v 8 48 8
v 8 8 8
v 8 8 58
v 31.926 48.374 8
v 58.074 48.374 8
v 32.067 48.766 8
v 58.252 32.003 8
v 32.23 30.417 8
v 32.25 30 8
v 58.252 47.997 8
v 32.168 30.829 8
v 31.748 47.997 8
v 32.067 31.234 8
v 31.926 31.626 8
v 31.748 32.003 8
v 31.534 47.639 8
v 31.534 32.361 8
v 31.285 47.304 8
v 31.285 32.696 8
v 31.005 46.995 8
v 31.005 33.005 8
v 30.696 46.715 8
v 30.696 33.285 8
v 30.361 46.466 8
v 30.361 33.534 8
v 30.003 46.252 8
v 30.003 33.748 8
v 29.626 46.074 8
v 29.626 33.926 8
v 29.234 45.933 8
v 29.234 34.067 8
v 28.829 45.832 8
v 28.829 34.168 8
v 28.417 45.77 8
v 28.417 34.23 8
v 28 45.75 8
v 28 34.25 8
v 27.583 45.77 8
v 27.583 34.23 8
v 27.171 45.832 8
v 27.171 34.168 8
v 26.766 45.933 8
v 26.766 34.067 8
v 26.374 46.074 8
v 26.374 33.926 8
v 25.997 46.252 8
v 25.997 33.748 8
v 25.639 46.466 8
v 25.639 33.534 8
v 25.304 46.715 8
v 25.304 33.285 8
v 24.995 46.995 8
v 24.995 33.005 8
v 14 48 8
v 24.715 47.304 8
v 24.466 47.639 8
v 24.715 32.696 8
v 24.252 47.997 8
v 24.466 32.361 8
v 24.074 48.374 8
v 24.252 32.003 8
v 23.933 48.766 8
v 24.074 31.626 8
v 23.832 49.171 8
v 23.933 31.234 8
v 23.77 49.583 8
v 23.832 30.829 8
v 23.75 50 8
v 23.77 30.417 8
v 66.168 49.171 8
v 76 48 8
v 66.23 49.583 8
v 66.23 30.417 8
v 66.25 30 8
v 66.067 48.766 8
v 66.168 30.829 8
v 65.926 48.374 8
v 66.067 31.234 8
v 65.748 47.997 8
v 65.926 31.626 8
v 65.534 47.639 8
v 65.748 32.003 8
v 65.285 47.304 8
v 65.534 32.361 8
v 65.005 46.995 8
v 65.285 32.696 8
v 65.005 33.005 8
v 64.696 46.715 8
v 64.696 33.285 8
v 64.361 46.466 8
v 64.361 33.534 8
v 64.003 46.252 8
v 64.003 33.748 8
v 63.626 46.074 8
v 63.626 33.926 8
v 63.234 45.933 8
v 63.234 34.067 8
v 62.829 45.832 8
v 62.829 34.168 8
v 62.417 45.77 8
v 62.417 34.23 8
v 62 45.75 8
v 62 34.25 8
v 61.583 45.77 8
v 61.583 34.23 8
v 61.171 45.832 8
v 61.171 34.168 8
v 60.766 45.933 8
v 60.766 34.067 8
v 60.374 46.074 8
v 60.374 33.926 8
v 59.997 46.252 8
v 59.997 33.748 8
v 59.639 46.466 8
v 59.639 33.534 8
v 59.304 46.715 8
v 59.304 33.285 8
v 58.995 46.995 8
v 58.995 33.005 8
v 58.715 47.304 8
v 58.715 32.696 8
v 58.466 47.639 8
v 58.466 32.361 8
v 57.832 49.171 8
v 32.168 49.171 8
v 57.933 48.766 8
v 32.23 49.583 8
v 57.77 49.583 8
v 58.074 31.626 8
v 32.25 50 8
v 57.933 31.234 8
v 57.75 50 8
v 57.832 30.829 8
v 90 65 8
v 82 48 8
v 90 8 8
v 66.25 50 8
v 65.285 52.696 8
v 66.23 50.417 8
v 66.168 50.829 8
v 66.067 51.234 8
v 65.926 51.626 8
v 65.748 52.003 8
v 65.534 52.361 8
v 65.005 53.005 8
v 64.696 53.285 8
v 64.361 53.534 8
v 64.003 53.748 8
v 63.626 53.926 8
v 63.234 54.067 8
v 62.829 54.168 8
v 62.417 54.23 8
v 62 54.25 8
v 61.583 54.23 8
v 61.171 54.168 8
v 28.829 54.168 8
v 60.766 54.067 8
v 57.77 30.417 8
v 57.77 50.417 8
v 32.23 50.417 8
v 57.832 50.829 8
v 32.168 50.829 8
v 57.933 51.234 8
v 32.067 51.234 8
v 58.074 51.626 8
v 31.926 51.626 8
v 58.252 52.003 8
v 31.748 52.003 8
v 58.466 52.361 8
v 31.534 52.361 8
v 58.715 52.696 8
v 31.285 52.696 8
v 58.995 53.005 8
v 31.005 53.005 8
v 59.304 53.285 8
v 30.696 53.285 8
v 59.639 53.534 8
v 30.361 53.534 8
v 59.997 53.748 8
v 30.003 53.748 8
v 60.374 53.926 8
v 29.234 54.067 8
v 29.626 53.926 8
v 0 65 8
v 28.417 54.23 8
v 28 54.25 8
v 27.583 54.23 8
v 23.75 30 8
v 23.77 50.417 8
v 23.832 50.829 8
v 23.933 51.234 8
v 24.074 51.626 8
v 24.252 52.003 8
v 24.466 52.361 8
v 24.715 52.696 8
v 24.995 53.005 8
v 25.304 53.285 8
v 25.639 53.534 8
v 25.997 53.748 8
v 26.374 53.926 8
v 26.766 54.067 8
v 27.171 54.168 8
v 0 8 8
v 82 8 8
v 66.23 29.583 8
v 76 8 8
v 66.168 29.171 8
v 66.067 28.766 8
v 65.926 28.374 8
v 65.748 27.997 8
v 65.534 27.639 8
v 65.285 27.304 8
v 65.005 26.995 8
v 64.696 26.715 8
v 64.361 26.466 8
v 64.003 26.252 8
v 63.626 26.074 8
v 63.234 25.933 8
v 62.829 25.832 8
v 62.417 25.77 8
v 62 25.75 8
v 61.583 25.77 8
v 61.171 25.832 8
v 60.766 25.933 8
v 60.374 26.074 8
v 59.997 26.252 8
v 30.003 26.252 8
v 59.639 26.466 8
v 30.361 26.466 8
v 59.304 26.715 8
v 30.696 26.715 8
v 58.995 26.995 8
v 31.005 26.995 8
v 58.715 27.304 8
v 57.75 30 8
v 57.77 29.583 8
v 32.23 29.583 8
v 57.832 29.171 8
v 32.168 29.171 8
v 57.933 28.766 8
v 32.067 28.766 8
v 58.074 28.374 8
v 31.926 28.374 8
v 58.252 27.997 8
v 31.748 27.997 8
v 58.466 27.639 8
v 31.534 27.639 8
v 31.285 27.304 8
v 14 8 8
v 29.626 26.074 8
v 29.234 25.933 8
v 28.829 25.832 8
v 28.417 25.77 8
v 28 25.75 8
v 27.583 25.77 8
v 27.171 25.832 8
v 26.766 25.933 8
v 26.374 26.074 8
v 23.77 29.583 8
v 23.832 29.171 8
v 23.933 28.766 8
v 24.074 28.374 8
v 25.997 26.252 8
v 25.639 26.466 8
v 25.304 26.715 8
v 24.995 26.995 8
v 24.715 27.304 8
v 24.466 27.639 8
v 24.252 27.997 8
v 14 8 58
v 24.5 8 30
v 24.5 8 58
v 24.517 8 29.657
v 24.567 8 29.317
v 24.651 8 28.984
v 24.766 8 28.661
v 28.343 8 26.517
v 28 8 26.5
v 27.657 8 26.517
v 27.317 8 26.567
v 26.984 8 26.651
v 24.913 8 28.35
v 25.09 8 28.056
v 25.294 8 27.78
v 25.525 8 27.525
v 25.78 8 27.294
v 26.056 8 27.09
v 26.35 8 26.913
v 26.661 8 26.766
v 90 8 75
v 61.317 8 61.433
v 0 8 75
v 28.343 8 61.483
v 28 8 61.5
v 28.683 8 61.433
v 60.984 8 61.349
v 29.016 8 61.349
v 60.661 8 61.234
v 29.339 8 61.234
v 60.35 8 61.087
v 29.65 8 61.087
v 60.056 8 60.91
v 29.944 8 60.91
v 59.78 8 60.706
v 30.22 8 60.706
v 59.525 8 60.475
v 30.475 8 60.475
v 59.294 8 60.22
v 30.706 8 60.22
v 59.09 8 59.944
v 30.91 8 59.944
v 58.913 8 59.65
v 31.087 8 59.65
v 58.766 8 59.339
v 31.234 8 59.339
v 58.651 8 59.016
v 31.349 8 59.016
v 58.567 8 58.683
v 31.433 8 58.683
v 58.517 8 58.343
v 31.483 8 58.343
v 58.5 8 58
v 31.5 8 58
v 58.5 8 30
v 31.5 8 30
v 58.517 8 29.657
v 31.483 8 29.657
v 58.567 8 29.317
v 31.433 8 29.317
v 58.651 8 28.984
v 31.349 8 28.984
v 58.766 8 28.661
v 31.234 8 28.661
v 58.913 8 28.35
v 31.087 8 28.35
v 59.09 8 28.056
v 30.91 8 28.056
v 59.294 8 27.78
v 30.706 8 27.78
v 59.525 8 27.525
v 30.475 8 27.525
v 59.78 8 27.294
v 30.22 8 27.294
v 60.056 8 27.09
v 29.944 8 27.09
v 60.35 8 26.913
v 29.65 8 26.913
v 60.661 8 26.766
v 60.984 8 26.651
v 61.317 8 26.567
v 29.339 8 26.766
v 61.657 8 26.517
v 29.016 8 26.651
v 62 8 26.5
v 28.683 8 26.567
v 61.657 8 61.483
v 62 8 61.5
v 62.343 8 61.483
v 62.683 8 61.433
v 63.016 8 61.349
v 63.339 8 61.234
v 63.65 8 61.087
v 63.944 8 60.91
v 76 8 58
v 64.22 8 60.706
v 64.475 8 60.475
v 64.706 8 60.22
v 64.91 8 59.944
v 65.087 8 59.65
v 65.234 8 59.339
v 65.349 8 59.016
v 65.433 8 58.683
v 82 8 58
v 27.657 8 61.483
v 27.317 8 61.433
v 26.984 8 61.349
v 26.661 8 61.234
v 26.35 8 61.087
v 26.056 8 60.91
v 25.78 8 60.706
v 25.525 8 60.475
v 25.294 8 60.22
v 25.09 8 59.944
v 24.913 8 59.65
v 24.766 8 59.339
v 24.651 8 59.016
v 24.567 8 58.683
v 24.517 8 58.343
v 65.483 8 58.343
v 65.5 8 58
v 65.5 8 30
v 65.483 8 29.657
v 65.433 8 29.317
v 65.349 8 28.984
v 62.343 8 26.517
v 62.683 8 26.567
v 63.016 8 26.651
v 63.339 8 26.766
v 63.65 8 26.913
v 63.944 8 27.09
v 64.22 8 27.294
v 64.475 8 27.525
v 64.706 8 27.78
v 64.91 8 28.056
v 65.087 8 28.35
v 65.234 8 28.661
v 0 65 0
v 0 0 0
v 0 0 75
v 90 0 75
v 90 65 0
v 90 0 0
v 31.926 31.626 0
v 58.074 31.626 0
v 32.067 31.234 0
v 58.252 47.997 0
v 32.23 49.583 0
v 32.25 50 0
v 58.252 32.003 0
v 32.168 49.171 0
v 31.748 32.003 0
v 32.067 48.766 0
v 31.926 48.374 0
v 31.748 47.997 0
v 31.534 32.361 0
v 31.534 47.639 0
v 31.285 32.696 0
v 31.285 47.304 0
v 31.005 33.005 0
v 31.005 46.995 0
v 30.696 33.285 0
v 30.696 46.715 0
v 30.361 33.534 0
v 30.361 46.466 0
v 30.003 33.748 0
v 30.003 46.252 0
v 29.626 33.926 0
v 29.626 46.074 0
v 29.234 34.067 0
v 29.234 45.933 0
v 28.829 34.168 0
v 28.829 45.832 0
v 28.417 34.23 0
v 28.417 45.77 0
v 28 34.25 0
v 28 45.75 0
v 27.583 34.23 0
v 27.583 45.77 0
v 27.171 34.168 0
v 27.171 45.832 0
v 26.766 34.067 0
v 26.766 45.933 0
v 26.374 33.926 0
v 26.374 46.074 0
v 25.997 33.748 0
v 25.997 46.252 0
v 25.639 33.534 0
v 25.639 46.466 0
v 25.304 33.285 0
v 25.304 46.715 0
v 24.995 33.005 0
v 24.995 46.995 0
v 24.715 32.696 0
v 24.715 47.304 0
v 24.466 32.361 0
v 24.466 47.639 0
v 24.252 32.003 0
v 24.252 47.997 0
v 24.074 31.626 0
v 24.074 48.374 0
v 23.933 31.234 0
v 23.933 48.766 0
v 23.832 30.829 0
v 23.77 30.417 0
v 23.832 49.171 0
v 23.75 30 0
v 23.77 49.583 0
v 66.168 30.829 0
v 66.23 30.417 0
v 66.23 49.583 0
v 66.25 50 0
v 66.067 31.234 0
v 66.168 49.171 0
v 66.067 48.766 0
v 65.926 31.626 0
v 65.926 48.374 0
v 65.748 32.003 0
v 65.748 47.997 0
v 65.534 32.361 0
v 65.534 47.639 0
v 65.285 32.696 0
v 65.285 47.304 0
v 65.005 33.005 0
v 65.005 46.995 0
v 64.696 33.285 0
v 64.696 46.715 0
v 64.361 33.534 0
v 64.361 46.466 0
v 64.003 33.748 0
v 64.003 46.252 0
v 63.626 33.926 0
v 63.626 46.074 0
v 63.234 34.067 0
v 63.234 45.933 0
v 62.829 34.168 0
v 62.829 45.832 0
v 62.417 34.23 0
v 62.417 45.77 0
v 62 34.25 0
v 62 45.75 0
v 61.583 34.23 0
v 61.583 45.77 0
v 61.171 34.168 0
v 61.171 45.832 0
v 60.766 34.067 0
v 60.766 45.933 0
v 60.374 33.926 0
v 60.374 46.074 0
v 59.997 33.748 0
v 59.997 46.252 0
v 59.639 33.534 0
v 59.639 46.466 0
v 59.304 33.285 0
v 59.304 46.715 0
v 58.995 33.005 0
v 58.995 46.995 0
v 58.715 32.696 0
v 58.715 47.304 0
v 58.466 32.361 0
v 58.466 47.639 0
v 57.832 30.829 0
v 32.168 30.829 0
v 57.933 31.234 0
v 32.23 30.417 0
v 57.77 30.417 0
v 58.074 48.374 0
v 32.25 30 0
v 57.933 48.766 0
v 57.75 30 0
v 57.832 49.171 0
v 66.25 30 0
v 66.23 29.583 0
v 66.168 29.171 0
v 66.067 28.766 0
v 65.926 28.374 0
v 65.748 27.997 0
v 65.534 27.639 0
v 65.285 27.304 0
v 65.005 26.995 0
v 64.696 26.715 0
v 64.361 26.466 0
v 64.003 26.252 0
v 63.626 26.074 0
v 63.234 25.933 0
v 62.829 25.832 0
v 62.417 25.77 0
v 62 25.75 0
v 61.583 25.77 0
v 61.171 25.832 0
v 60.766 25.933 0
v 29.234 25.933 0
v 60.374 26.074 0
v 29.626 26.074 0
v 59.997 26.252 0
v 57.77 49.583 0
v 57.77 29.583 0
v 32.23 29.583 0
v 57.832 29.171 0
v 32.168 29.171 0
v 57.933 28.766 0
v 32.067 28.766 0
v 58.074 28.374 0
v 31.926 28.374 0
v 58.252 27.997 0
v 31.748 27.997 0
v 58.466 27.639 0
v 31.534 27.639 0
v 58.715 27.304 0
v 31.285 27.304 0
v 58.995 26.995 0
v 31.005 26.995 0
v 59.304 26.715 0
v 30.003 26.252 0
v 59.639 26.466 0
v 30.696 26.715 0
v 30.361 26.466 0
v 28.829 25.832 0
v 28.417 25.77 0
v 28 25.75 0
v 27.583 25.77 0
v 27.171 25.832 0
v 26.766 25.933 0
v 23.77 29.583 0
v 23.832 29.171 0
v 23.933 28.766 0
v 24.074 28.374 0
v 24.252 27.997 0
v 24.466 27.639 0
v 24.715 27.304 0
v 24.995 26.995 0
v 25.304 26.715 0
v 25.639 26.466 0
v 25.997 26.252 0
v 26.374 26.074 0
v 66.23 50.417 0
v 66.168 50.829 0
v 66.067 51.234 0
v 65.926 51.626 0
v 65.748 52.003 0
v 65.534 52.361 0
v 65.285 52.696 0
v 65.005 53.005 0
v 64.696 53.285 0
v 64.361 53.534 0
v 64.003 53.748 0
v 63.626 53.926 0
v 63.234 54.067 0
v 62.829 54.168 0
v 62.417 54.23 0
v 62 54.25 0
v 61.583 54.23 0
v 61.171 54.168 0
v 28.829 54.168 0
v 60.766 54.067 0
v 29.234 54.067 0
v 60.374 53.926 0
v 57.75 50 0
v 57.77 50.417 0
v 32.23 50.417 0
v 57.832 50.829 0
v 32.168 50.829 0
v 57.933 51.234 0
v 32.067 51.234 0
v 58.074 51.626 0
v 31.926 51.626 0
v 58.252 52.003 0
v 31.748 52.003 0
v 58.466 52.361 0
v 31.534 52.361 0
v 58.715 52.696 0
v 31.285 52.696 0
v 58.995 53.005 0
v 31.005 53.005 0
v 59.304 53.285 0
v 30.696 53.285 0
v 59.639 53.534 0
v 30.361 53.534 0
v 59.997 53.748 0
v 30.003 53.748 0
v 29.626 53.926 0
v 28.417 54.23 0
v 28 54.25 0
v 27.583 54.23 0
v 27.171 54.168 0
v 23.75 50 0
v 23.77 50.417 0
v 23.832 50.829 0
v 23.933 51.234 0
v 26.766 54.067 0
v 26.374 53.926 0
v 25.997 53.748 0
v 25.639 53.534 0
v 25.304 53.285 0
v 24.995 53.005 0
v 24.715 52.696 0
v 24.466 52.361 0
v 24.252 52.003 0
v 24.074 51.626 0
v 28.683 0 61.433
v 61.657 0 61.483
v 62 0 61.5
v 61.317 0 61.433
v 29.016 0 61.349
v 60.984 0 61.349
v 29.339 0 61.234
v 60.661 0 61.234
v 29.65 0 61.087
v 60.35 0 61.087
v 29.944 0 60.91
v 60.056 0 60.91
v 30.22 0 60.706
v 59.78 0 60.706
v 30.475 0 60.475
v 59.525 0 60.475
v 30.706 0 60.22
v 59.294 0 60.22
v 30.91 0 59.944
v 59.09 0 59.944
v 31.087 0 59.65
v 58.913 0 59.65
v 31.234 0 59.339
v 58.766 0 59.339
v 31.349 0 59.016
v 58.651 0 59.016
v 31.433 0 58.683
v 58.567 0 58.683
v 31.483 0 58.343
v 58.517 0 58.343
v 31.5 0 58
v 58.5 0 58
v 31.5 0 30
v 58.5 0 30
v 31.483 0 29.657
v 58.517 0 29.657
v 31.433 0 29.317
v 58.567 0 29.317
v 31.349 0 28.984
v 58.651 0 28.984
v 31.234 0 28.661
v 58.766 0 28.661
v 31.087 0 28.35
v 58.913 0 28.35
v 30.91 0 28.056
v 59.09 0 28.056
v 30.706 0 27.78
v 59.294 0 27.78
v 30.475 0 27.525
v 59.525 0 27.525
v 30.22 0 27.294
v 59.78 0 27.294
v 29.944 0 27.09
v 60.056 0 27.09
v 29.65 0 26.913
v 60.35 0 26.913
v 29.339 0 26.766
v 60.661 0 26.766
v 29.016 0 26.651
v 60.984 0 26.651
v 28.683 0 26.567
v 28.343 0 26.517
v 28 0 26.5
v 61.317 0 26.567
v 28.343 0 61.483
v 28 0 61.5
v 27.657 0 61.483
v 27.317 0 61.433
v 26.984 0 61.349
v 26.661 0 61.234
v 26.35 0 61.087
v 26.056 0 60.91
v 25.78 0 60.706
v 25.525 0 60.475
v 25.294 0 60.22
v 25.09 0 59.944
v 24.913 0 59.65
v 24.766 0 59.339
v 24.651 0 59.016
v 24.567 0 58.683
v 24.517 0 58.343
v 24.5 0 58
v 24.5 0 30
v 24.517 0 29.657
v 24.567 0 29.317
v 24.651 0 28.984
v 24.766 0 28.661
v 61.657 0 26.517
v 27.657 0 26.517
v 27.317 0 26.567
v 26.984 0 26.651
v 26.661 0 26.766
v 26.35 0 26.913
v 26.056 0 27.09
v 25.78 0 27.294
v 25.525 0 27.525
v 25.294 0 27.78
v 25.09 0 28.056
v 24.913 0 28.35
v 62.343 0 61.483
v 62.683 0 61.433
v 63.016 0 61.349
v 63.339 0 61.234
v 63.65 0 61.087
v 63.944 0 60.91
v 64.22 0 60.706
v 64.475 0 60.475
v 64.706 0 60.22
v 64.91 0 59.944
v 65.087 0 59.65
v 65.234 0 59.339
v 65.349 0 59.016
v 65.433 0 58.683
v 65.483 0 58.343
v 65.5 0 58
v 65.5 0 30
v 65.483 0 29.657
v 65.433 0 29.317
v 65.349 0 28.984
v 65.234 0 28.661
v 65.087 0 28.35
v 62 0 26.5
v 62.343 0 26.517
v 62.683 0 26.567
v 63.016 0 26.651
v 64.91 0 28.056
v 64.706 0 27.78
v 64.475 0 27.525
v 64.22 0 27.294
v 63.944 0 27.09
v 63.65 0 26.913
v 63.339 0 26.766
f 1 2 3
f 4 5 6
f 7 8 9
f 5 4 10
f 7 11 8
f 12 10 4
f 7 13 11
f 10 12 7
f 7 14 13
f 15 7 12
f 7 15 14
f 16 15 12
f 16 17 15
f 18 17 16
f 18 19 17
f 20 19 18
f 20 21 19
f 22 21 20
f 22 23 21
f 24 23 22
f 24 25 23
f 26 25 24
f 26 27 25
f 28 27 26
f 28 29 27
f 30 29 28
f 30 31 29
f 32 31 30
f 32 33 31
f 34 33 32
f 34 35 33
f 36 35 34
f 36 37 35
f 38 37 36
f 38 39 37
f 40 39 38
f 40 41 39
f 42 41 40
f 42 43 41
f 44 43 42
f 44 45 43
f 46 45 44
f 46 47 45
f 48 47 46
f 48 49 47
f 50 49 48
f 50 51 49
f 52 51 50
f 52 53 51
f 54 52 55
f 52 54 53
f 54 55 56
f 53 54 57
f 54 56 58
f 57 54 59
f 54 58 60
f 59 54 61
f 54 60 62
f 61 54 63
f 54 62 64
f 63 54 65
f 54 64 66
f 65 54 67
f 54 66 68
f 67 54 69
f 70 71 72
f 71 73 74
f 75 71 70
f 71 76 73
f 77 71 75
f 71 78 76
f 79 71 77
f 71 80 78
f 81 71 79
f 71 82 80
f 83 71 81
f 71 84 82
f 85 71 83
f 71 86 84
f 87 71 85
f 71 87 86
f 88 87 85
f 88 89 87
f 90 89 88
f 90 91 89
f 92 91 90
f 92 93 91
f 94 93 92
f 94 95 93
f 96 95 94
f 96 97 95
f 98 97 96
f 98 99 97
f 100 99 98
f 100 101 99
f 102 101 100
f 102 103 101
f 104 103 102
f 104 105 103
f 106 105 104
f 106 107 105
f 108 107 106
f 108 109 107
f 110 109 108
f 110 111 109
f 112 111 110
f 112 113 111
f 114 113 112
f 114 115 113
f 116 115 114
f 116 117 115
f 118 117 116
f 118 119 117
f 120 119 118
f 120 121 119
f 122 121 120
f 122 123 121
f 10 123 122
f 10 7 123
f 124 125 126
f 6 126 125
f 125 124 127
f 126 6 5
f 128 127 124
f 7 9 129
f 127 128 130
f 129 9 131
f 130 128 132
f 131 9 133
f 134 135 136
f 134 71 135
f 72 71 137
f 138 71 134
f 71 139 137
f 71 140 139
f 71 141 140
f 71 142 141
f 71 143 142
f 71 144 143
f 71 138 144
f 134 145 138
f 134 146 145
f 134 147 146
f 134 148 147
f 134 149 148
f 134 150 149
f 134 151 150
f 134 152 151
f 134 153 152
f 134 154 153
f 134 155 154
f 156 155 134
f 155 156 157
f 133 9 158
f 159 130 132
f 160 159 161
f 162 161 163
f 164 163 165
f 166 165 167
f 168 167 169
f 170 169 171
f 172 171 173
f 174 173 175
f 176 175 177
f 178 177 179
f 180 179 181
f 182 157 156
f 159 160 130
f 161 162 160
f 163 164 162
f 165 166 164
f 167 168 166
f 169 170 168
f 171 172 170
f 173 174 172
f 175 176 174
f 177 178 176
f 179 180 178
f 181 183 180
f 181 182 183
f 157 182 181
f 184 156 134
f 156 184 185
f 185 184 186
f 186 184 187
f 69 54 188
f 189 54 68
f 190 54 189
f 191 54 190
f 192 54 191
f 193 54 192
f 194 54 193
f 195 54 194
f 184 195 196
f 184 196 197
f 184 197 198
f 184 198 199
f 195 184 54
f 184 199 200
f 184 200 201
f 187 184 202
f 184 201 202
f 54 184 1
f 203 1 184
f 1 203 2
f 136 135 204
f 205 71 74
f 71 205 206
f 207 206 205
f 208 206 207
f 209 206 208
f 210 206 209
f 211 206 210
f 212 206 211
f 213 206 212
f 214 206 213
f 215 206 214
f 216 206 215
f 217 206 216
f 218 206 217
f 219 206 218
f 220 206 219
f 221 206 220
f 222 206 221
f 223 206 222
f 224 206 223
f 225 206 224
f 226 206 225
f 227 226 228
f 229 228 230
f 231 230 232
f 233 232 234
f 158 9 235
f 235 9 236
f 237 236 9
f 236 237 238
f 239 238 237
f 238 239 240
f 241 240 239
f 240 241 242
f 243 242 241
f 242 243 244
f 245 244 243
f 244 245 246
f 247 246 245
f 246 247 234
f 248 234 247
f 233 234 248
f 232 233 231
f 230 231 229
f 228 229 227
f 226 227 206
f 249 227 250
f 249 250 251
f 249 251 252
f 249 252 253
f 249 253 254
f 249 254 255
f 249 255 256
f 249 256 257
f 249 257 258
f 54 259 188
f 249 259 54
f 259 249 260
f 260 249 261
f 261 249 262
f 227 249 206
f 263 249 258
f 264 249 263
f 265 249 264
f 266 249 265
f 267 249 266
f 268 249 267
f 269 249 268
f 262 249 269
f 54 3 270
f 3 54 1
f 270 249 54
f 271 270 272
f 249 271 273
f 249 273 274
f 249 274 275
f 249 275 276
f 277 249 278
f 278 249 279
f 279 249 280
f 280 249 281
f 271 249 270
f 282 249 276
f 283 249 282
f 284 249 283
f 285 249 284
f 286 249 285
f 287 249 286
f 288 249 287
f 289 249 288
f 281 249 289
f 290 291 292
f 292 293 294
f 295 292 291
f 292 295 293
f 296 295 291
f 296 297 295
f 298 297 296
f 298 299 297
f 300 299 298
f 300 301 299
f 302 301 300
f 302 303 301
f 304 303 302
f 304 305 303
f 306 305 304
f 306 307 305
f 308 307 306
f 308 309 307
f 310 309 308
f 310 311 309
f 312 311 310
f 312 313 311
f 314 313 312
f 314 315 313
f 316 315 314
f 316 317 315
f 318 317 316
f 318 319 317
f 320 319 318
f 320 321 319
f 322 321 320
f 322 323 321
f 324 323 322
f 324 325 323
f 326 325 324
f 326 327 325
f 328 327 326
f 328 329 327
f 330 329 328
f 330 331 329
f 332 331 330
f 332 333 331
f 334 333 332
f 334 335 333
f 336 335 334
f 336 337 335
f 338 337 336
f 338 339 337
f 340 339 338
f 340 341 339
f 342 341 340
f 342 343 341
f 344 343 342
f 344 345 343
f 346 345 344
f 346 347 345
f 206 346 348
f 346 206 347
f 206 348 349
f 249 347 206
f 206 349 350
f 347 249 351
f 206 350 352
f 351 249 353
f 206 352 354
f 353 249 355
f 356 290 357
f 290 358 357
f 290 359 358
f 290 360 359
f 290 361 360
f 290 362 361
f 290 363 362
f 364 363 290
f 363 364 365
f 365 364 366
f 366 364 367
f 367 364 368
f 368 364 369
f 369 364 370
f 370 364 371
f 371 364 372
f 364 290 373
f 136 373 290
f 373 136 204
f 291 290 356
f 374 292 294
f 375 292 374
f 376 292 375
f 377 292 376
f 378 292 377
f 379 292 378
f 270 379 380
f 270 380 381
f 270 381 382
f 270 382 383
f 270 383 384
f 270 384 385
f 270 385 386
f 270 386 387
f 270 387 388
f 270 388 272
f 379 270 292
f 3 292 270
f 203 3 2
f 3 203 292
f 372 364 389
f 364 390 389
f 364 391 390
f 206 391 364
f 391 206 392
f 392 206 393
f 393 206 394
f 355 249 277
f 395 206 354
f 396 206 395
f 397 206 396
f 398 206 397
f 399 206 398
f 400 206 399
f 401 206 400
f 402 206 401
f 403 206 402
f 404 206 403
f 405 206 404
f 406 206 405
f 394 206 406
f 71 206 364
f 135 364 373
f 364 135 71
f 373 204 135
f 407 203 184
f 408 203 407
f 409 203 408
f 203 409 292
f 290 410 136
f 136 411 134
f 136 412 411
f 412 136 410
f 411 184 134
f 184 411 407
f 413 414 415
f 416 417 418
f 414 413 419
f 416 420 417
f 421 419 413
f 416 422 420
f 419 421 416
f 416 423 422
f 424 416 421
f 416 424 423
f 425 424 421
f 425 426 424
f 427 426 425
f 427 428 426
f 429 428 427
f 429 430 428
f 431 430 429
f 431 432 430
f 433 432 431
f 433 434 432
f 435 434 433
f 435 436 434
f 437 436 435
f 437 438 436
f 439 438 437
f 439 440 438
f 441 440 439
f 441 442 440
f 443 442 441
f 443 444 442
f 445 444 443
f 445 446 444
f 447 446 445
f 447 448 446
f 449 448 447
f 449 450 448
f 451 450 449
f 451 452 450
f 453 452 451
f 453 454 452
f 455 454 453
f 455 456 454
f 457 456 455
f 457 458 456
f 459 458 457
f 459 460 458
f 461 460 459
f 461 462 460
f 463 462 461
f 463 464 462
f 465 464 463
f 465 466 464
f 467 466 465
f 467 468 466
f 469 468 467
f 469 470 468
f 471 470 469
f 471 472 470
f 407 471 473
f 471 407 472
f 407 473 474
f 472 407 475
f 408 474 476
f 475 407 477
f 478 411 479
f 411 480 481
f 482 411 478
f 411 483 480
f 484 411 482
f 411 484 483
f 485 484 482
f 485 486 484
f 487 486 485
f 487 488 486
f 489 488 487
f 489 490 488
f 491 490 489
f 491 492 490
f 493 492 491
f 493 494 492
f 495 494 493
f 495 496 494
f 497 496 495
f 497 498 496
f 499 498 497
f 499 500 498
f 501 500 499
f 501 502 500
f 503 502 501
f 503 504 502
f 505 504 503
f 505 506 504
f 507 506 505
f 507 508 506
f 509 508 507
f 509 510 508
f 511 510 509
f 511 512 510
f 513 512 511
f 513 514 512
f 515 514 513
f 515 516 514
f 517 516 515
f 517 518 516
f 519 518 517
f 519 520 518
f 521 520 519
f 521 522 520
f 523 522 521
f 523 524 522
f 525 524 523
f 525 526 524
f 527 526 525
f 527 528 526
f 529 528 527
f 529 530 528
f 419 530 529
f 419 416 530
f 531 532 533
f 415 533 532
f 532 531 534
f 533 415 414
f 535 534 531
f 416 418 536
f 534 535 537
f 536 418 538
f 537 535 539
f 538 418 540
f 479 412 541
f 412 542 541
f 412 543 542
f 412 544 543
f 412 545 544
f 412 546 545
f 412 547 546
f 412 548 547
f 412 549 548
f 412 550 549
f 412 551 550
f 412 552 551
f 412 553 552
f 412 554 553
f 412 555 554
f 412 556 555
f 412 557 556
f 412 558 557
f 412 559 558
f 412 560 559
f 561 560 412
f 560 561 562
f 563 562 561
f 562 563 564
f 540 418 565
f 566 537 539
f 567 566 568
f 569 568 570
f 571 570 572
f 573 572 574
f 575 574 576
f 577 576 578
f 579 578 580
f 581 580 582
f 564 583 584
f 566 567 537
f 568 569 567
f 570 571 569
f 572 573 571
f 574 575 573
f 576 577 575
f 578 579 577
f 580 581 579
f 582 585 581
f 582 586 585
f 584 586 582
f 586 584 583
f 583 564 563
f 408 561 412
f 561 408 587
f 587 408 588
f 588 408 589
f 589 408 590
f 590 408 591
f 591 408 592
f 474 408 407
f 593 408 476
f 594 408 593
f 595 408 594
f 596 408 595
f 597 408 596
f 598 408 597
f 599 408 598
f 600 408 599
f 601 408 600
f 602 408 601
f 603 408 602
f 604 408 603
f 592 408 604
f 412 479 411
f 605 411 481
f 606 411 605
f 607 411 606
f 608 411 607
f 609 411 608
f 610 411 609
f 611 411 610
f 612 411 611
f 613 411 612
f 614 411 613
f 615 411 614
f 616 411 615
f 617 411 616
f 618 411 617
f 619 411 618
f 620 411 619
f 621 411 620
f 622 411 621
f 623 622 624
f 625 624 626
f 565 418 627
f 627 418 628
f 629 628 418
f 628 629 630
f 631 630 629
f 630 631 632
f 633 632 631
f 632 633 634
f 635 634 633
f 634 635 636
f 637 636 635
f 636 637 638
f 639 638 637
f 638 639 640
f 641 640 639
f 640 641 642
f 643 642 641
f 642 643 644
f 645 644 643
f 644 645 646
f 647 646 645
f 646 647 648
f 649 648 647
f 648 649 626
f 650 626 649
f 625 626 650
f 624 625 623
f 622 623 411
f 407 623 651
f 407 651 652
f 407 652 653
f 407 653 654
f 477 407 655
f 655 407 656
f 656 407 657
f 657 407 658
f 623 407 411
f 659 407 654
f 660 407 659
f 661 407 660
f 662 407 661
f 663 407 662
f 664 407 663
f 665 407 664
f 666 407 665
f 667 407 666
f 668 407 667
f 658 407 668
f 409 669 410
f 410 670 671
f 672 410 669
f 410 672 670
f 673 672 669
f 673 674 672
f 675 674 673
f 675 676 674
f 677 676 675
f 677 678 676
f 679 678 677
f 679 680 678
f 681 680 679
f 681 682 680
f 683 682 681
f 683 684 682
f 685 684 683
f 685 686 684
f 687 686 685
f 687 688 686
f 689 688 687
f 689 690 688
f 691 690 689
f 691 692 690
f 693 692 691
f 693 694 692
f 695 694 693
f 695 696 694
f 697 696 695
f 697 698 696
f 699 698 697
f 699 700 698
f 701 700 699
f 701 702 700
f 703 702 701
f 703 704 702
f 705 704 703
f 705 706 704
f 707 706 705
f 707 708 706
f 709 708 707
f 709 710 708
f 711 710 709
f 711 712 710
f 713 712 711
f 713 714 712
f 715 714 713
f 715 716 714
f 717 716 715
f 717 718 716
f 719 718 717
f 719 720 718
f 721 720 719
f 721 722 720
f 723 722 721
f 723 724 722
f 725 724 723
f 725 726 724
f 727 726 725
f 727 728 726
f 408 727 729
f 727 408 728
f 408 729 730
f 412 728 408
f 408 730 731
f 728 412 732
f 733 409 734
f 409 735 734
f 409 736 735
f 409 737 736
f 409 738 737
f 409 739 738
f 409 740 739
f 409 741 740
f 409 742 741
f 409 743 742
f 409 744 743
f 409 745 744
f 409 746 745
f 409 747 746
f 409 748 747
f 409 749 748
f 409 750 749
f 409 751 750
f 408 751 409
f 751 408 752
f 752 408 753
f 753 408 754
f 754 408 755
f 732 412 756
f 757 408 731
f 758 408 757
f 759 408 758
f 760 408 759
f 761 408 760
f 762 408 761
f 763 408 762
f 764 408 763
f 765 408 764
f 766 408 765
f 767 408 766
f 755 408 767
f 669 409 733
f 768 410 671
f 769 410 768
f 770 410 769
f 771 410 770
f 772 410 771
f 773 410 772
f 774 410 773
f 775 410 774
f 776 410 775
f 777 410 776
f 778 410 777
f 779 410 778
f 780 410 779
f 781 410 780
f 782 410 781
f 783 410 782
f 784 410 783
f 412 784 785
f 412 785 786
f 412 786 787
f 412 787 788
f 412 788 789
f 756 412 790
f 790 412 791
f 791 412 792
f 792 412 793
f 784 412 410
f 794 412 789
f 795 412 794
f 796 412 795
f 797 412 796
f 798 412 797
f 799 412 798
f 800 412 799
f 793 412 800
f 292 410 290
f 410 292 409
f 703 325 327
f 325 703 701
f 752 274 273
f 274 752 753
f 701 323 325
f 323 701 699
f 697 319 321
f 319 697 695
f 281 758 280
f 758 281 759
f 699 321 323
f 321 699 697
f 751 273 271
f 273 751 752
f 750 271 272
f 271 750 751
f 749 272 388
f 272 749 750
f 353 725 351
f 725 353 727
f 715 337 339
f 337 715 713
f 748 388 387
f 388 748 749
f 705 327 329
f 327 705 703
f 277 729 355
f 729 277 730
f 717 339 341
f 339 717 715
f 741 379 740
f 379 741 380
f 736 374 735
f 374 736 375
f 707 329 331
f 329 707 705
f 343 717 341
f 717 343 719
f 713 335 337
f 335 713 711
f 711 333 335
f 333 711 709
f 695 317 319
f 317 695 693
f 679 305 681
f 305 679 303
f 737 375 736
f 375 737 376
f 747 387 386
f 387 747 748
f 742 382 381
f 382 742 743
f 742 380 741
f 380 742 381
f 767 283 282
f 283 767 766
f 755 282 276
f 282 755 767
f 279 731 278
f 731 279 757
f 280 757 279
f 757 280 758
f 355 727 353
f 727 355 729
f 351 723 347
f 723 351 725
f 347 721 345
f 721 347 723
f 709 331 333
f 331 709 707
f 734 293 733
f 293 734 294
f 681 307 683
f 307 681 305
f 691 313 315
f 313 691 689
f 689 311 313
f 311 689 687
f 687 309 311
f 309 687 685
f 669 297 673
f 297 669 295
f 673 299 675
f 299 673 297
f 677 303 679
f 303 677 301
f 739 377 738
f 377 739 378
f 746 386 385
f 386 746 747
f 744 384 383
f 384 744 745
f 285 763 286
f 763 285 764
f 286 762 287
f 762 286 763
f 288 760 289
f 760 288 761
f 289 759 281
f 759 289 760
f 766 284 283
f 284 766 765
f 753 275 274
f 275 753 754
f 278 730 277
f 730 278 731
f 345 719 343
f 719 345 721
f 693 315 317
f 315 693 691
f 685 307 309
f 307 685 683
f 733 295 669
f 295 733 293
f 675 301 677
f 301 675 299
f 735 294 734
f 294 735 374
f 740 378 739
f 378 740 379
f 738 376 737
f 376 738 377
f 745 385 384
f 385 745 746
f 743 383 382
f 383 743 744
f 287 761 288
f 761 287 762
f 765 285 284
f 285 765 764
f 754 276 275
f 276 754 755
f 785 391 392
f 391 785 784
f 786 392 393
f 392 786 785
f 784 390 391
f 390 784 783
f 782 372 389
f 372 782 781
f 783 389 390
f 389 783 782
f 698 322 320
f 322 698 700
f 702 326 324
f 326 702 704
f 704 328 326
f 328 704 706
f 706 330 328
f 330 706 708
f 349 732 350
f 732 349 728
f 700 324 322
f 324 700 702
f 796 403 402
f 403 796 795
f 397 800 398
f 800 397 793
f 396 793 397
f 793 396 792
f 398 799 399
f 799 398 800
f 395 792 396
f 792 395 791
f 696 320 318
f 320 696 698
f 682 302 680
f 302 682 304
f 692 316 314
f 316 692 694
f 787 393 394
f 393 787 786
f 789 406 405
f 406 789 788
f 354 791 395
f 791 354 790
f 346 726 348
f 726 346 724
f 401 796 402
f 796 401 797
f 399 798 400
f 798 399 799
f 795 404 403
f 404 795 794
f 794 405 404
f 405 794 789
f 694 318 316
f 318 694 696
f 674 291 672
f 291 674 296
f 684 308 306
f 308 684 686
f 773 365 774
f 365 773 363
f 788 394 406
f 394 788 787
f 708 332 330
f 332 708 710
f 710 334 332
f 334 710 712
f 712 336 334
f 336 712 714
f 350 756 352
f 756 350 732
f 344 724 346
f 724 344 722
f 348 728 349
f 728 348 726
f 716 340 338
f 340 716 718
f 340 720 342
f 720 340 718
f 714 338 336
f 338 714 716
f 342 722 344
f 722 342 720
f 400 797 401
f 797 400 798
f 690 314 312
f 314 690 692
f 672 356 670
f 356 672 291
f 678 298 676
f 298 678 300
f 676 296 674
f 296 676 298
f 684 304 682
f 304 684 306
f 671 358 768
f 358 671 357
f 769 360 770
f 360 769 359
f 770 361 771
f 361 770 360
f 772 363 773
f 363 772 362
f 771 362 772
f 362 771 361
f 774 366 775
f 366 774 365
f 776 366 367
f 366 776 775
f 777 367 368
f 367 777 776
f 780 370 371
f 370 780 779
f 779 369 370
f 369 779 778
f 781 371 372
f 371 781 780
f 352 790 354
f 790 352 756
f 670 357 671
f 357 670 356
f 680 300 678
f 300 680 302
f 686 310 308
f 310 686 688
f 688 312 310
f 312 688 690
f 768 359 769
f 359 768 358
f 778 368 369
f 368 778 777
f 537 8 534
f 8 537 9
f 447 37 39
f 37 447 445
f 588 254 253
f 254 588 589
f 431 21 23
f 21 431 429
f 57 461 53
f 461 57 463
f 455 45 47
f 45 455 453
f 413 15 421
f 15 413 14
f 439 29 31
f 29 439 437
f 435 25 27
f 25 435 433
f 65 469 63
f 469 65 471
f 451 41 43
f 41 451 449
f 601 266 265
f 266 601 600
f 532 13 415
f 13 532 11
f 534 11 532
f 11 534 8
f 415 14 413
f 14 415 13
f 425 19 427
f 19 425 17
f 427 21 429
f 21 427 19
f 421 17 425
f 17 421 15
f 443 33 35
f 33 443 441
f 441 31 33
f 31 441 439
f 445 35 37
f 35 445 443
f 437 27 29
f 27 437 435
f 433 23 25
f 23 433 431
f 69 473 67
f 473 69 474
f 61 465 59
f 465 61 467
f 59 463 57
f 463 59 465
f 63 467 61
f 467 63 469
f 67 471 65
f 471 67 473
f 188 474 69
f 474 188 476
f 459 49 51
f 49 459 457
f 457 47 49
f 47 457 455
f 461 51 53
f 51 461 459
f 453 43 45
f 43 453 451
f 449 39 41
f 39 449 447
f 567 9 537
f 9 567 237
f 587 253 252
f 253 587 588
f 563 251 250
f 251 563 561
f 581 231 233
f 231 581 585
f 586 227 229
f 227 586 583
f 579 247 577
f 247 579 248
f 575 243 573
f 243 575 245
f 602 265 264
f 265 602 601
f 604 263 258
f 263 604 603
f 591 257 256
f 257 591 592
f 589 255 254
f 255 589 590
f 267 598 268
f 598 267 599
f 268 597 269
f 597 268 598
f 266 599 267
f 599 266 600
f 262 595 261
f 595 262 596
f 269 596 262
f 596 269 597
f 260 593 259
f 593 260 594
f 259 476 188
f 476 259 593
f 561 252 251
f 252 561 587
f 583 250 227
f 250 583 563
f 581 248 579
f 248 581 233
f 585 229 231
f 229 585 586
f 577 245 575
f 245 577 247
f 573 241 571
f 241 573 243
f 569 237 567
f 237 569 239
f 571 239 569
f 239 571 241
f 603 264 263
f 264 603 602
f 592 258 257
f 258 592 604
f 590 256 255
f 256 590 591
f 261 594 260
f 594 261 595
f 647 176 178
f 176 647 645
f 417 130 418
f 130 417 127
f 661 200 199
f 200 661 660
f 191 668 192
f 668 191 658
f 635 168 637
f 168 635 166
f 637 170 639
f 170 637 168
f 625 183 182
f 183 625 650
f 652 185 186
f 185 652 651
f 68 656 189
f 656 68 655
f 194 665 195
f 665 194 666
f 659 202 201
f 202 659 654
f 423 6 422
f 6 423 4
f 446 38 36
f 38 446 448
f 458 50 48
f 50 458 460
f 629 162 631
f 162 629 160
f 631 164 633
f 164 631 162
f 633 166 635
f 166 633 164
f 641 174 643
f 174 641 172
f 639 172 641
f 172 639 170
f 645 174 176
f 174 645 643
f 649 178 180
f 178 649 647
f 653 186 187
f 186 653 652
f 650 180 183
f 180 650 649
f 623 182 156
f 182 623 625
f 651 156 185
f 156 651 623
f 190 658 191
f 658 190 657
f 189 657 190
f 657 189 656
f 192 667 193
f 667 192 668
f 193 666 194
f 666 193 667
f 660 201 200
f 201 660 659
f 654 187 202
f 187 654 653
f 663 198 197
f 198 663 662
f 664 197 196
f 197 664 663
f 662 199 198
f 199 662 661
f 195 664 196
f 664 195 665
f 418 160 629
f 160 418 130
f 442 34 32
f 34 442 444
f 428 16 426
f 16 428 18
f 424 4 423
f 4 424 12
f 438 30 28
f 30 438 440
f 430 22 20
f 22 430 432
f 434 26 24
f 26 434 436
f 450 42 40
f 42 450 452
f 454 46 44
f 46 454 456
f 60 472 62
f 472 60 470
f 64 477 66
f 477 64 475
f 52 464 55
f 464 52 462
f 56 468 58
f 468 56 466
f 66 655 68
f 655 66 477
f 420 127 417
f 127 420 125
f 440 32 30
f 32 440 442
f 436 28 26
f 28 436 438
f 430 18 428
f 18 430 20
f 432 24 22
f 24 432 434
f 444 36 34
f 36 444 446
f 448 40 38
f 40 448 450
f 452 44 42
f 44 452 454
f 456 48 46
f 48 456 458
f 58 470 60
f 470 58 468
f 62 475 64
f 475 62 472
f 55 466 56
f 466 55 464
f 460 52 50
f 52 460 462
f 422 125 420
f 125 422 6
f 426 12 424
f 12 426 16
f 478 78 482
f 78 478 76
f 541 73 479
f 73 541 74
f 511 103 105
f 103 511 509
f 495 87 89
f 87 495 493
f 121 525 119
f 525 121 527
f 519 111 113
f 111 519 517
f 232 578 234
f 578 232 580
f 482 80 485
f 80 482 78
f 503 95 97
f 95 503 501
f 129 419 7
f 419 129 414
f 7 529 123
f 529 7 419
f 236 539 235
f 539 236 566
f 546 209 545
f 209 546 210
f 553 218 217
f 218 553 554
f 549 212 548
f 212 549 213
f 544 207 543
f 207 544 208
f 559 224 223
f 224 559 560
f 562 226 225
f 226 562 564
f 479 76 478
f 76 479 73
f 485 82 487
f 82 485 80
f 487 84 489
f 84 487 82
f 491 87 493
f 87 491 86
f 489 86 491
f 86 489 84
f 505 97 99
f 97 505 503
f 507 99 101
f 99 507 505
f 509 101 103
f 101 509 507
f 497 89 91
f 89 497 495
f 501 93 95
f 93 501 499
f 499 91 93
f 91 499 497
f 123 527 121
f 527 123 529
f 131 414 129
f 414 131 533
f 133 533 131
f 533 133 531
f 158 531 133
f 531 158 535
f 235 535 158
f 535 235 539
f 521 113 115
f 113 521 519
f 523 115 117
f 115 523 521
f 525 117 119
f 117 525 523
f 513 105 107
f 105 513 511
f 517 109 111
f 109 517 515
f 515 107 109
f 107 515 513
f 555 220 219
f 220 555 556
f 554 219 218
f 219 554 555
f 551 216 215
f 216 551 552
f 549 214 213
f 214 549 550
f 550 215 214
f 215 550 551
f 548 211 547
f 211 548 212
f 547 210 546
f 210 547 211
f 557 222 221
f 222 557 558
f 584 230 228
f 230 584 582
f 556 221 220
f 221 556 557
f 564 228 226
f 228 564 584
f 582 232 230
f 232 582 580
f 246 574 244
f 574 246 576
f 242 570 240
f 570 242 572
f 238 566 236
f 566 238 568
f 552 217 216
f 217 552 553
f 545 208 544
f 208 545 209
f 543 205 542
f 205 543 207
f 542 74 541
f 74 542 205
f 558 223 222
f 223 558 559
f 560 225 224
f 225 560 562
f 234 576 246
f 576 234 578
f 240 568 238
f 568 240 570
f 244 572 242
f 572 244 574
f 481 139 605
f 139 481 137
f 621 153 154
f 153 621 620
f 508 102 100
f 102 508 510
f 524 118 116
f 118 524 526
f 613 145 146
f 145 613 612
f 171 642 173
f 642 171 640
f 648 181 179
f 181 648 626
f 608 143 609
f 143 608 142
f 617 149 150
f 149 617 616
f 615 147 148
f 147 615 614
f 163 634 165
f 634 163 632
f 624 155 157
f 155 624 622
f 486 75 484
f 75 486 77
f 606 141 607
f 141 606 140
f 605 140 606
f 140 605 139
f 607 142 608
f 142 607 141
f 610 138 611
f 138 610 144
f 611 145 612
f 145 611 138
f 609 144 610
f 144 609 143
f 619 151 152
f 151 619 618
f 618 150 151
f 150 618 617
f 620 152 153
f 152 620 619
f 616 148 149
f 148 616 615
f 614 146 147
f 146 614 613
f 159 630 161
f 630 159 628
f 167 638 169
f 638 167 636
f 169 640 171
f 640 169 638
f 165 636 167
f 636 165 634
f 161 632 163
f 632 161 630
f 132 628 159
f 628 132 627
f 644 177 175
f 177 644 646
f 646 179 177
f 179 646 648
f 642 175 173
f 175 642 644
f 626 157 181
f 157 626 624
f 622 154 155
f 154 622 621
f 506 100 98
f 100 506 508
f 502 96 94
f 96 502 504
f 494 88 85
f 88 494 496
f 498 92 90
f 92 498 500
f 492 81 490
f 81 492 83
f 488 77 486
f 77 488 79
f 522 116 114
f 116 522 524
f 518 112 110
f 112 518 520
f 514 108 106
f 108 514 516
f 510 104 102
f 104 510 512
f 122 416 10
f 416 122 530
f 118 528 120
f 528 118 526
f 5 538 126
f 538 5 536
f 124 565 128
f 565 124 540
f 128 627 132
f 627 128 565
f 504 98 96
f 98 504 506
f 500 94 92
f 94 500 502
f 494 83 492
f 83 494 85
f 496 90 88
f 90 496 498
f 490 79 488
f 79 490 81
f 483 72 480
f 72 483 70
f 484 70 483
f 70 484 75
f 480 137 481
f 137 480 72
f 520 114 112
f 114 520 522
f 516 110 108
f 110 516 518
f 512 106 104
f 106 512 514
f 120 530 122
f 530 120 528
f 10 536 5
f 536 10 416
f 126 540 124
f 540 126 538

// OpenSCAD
// Original MechIntel educational model. CC0-1.0. Units: mm.
// Not a standardized or load-rated component.
$fn=96;
width=90; depth=65; height=75; wall=8; slot=7;
$fn=64;
difference(){
 union(){
 cube([width,depth,wall]);cube([width,wall,height]);
 for(x=[8,width-14]) translate([x,wall,wall]) rotate([90,0,90]) linear_extrude(height=6) polygon([[0,0],[40,0],[0,50]]);
 }
 for(x=[28,62]) hull(){
 translate([x,-1,30]) rotate([-90,0,0]) cylinder(d=slot,h=wall+2);
 translate([x,-1,58]) rotate([-90,0,0]) cylinder(d=slot,h=wall+2);
 }
 for(x=[28,62]) for(y=[30,50]) translate([x,y,-1]) cylinder(d=8.5,h=wall+2);
}
